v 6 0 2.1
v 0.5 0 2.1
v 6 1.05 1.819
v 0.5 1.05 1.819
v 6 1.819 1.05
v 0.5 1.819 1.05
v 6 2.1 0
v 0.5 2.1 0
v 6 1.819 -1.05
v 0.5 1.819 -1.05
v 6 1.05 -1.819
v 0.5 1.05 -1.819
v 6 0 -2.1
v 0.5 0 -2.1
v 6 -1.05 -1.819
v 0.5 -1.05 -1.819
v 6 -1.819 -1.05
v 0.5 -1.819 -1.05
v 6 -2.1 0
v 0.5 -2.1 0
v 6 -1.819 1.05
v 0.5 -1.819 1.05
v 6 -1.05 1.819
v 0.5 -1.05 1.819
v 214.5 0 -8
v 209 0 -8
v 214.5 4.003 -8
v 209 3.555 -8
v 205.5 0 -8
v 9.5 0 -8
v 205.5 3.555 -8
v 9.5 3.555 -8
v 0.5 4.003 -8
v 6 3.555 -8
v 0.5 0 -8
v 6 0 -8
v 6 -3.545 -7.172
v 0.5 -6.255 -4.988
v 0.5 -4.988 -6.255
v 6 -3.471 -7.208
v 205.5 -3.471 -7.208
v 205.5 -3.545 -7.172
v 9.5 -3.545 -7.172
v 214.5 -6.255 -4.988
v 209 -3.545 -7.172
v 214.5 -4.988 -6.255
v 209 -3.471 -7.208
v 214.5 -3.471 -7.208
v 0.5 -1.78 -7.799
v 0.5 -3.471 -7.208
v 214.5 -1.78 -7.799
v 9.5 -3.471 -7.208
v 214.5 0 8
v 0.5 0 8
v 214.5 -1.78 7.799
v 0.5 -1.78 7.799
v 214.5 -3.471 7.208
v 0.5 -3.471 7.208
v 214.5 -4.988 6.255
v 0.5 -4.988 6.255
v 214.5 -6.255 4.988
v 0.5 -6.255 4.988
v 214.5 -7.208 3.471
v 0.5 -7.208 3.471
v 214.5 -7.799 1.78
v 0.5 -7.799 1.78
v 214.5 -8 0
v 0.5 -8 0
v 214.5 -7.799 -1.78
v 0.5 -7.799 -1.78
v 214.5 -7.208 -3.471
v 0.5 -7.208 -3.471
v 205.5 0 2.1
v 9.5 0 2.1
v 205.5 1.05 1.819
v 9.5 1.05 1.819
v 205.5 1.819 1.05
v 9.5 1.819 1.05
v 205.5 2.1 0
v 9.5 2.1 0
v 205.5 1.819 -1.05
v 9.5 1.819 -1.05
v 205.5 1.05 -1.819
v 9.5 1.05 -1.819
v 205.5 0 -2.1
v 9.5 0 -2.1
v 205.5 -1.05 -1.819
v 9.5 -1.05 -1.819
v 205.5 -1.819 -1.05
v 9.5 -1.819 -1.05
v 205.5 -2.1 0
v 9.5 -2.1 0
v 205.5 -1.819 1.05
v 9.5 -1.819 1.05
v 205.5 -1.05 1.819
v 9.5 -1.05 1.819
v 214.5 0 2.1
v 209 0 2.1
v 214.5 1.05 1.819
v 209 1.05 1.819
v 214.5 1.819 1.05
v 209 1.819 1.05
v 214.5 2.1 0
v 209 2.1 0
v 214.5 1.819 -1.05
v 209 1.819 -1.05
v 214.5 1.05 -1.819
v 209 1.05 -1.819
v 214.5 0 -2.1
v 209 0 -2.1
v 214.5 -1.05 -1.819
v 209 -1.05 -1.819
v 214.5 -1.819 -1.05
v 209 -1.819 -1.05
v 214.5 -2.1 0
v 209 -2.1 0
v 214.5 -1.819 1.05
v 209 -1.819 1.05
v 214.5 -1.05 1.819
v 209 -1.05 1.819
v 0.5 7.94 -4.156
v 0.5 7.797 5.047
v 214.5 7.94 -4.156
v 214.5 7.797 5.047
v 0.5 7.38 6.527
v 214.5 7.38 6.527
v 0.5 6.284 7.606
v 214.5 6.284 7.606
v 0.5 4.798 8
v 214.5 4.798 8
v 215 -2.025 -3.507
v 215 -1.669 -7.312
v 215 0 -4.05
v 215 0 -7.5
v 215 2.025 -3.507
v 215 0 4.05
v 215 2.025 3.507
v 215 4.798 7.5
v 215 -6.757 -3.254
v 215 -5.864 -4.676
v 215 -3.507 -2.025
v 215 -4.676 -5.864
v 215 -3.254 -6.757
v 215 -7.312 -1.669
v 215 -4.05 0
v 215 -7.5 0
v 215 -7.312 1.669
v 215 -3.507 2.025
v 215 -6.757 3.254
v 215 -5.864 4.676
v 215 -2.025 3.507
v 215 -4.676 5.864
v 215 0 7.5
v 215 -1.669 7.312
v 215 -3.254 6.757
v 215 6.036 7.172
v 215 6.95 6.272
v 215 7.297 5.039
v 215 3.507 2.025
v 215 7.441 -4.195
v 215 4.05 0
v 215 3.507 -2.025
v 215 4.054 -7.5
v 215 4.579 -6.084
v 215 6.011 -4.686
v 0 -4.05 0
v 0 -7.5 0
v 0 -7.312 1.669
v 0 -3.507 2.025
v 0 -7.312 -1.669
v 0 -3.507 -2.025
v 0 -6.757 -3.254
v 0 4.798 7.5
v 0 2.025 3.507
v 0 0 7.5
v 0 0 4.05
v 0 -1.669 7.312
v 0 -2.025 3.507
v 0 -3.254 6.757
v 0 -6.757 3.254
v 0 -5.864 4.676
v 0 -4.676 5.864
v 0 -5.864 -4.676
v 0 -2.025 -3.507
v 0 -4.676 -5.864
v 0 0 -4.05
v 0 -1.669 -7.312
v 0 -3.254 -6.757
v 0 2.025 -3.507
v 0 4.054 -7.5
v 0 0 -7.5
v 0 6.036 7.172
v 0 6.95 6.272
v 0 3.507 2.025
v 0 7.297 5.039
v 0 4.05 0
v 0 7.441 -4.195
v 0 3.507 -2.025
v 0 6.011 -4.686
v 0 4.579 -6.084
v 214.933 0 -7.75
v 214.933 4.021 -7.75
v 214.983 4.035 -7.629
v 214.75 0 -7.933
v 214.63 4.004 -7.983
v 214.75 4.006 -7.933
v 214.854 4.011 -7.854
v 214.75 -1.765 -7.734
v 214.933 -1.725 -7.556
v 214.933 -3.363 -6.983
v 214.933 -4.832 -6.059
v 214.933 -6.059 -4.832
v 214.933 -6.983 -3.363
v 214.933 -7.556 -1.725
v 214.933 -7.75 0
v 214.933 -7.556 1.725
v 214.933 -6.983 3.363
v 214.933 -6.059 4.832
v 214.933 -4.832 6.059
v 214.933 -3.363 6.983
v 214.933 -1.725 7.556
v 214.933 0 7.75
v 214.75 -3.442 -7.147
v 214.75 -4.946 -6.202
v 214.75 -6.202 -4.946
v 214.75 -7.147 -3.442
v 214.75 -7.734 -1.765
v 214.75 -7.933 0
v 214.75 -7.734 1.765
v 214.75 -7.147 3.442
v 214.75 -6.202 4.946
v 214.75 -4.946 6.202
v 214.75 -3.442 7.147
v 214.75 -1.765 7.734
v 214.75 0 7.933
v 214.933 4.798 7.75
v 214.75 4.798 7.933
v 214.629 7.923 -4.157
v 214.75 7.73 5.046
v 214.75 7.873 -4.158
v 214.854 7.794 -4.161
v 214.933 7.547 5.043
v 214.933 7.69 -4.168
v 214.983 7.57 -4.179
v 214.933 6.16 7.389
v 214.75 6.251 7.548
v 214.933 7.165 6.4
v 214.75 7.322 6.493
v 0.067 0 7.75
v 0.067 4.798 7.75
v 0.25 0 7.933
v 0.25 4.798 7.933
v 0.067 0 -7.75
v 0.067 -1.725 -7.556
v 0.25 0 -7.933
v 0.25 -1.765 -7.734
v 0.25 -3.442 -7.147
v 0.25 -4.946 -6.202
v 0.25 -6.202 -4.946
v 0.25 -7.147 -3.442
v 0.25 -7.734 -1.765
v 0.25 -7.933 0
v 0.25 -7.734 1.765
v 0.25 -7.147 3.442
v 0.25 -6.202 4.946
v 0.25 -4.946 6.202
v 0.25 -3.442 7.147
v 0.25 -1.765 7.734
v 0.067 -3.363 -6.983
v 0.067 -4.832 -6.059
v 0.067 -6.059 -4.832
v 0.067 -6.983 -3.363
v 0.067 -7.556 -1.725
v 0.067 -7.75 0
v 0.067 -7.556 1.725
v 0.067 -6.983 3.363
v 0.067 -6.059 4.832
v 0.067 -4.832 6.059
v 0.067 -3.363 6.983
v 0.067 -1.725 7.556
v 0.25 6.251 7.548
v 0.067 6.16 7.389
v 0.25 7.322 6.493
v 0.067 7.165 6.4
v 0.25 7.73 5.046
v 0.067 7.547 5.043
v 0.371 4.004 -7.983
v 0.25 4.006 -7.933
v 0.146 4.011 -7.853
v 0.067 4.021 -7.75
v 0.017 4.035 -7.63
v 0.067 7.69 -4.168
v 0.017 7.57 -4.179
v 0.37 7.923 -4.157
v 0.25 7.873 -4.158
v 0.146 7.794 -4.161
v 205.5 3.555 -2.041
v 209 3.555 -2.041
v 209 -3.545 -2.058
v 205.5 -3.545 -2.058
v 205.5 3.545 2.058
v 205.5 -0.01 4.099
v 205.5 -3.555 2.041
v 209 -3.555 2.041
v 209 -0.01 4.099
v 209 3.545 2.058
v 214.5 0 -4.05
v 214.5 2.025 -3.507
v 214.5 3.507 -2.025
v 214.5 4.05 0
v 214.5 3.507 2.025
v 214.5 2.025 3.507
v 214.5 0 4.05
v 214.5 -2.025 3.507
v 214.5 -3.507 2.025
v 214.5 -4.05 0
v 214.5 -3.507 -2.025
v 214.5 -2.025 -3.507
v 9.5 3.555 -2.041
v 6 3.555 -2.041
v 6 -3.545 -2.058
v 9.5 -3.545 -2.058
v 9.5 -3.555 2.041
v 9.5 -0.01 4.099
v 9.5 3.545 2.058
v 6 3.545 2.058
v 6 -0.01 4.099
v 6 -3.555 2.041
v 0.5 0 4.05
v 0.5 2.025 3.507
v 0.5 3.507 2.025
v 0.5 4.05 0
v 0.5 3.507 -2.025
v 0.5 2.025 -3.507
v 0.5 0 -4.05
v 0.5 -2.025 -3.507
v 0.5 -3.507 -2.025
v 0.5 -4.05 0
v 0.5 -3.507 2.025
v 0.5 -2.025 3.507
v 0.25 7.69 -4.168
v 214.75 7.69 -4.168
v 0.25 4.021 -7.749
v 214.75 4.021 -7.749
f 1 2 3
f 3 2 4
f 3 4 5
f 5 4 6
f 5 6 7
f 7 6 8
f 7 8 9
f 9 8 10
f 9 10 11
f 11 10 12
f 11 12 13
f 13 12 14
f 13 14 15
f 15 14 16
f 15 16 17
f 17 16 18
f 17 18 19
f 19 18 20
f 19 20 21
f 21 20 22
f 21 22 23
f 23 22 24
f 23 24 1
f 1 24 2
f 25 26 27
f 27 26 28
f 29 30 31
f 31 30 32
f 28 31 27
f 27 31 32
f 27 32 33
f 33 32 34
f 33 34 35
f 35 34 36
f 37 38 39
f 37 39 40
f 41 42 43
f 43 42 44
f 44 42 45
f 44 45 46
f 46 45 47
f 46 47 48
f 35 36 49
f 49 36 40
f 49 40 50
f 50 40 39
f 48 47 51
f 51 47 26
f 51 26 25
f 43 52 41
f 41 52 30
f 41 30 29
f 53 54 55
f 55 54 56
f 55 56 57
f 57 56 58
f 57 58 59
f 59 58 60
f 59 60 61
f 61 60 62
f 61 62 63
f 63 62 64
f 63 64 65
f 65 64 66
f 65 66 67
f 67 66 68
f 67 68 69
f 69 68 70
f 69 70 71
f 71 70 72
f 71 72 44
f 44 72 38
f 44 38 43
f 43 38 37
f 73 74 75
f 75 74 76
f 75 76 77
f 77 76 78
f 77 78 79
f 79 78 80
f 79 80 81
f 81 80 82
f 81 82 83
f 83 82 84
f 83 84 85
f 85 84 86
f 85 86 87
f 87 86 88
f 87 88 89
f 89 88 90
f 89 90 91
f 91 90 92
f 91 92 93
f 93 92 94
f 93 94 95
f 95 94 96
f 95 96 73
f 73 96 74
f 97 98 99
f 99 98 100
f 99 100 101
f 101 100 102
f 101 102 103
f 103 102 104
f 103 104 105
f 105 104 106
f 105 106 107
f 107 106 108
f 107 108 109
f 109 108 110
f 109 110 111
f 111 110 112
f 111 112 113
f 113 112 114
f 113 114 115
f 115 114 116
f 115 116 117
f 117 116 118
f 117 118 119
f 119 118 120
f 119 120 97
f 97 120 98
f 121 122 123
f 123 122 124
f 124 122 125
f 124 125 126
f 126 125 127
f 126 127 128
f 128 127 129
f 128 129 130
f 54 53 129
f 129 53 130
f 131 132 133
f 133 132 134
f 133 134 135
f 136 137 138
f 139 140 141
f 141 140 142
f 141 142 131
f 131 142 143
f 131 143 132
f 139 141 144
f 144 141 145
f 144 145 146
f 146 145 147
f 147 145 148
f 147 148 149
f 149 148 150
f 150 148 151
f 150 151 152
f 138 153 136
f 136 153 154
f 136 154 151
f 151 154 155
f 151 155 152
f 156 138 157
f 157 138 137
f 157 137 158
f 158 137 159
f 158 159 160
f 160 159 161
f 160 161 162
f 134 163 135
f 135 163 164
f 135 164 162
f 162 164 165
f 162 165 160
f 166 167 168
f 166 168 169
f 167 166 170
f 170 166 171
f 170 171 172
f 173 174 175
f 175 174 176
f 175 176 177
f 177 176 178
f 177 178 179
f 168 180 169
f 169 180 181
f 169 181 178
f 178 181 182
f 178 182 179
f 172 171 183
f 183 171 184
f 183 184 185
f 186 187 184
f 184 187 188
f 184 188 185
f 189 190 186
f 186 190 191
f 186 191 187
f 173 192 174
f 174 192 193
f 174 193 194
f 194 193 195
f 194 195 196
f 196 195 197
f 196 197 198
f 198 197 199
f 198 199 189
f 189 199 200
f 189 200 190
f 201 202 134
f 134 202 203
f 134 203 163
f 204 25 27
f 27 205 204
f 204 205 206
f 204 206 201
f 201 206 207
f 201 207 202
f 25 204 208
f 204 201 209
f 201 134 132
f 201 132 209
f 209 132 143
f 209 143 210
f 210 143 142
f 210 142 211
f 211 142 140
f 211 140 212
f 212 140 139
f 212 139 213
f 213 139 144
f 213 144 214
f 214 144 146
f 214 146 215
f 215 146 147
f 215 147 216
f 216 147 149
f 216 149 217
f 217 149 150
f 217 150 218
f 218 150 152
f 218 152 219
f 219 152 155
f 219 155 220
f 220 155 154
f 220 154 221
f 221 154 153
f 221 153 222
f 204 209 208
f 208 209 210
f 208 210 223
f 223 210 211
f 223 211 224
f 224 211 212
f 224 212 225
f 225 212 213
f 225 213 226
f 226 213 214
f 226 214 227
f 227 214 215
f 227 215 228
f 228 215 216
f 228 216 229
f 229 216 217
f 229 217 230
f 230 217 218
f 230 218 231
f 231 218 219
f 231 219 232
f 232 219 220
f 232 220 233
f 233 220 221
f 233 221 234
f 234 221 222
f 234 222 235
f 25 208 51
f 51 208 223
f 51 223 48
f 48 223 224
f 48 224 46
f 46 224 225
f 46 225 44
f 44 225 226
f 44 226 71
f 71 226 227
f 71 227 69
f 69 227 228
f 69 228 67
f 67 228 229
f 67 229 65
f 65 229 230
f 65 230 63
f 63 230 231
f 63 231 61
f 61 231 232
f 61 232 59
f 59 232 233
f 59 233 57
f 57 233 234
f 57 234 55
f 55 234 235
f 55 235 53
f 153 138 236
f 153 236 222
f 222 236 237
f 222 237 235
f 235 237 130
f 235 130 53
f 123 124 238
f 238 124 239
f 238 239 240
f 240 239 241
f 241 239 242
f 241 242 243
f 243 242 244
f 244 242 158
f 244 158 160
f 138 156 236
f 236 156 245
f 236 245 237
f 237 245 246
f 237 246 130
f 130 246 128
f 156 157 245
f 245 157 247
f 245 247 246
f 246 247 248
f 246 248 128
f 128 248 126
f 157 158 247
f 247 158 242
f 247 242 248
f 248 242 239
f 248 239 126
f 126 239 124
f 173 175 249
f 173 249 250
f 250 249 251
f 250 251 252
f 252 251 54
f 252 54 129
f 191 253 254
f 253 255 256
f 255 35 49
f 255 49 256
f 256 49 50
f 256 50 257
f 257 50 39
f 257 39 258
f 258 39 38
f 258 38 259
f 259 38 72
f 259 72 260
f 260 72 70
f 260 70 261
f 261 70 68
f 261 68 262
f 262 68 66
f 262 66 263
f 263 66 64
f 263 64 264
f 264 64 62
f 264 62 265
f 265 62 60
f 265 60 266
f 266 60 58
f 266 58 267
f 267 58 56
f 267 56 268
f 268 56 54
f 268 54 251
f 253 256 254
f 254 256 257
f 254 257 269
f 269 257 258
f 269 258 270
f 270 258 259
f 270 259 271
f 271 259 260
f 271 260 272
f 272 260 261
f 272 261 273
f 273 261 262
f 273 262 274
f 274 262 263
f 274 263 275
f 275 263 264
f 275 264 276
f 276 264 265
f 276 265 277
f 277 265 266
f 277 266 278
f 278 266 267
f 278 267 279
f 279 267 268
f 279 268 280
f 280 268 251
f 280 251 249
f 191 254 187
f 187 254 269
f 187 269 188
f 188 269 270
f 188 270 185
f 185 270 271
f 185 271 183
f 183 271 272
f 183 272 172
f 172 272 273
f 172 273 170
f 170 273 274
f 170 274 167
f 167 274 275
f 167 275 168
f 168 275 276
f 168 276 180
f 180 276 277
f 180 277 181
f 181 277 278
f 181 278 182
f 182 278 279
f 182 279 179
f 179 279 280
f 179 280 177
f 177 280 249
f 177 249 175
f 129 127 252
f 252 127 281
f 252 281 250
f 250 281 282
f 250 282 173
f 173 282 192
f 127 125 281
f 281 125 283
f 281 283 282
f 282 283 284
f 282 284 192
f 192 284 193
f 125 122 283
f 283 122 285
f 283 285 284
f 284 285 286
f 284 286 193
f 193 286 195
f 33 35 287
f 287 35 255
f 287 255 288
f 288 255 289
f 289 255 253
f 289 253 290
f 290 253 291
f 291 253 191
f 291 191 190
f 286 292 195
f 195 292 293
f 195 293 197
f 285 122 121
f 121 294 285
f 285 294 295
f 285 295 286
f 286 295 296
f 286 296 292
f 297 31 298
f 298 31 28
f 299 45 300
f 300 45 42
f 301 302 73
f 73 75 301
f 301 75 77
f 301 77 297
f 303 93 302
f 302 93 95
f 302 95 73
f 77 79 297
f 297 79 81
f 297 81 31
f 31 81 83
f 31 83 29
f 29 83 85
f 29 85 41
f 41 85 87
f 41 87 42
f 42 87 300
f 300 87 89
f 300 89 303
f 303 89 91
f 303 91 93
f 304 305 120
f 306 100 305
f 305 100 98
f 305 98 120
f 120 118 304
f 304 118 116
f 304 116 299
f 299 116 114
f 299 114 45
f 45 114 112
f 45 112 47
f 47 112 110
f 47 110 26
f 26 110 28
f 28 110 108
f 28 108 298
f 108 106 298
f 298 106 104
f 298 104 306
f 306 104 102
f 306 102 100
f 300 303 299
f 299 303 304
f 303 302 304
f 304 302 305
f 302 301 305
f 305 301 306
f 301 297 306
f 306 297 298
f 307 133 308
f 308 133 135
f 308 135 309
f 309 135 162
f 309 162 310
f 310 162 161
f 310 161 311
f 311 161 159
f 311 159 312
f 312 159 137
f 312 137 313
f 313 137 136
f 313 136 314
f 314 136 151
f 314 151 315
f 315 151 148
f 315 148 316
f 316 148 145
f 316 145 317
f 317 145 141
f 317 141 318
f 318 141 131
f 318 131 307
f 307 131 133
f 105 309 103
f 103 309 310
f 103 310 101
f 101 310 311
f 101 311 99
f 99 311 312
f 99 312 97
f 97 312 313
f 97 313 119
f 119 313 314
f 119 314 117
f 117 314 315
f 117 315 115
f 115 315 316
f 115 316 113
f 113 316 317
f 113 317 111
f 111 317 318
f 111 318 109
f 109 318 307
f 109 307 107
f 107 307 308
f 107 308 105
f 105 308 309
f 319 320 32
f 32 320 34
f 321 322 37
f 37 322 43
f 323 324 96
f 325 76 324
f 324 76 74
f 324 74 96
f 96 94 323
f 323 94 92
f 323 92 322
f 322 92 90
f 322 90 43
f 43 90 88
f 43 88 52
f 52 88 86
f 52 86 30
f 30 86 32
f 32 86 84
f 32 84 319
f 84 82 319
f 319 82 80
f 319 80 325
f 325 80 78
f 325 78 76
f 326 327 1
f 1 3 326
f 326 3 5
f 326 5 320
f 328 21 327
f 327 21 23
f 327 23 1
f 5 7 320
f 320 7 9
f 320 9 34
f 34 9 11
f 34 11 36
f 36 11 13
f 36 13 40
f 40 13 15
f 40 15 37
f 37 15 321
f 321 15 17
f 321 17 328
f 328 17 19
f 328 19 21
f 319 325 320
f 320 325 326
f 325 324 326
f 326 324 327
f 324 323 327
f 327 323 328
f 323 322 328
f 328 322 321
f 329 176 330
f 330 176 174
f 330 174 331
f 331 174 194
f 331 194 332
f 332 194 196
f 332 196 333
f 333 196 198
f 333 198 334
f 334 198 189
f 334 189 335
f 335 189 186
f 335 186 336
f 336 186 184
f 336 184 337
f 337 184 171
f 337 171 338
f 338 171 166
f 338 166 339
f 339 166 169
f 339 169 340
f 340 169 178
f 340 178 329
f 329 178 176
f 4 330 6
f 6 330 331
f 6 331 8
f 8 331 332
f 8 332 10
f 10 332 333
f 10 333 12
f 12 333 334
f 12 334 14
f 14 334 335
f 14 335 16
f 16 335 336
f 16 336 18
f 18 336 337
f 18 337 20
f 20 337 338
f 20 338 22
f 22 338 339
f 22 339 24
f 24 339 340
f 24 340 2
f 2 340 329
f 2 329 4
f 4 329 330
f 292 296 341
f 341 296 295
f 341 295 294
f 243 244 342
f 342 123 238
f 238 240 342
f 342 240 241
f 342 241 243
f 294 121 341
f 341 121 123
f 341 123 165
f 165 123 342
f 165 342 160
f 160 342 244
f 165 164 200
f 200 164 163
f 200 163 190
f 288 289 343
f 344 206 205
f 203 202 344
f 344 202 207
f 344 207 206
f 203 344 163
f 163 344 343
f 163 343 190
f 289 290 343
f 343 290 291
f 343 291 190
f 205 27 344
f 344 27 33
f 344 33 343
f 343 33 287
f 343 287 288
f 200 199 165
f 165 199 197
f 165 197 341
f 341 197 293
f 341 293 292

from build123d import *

# Parameters (mm, degrees)
SKETCH1_R           = 2.1
BOSS_EXTRUDE1_DEPTH = 215
FILLET1_R           = 0.5
CUT_EXTRUDE6_DEPTH  = 3.5
SKETCH11_R          = 4.05
CUT_EXTRUDE7_DEPTH  = 0.5
CUT_EXTRUDE8_DEPTH  = 216.297468637


with BuildPart() as part:
    # Sketch1 → Boss-Extrude1 (new body)
    with BuildSketch(Plane(origin=(0, 0, 0), x_dir=(0, 0, -1), z_dir=(1, 0, 0))):
        with BuildLine():
            ThreePointArc((-8, 0), (0, -8), (8, 0))
            Line((8, 0), (8, 4.953035538))
            ThreePointArc((8, 4.953035538), (7.10478138, 7.090766893), (4.953403104, 7.952673638))
            Line((4.953403104, 7.952673638), (-5.046596896, 7.797331911))
            ThreePointArc((-5.046596896, 7.797331911), (-7.137731355, 6.902475191), (-8, 4.797693812))
            Line((-8, 4.797693812), (-8, 0))
        make_face()
        Circle(SKETCH1_R, mode=Mode.SUBTRACT)
    extrude(amount=BOSS_EXTRUDE1_DEPTH)

    # Fillet1
    fillet1_edges = [part.edges().sort_by_distance(p)[0] for p in [
        (215, 6.902475191, 7.137731355),
        (215, 7.875002775, 0.046596896),
        (215, 7.090766893, -7.10478138),
        (215, 2.476517769, -8),
        (215, -8, 0),
        (0, 7.090766893, -7.10478138),
        (0, 2.476517769, -8),
        (0, -8, 0),
        (0, 2.398846906, 8),
        (0, 6.902475191, 7.137731355),
        (215, 2.398846906, 8),
        (0, 7.875002775, 0.046596896),
    ]]
    fillet(fillet1_edges, radius=FILLET1_R)

    # Sketch8 → Cut-Extrude6 (cut)
    with BuildSketch(Plane(origin=(209, 0, 0), x_dir=(0, 0, -1), z_dir=(1, 0, 0))):
        Polygon((2.040874515, 3.555019627), (10.204569272, 3.555019627), (10.291698633, -3.544958989), (2.058300051, -3.544958989), (-2.040874515, -3.555019627), (-4.099174565, -0.010060638), (-2.058300051, 3.544958989), align=None)
    cut_extrude6 = extrude(amount=-CUT_EXTRUDE6_DEPTH, mode=Mode.SUBTRACT)

    # Sketch11 → Cut-Extrude7 (cut)
    with BuildSketch(Plane(origin=(215, 0, 0), x_dir=(0, 0, -1), z_dir=(1, 0, 0))):
        Circle(SKETCH11_R)
    cut_extrude7 = extrude(amount=-CUT_EXTRUDE7_DEPTH, mode=Mode.SUBTRACT)

    # Mirror1: Cut-Extrude6, Cut-Extrude7 across plane
    add(cut_extrude6.mirror(Plane.ZY.offset(-107.5)), mode=Mode.SUBTRACT)
    add(cut_extrude7.mirror(Plane.ZY.offset(-107.5)), mode=Mode.SUBTRACT)

    # Sketch13 → Cut-Extrude8 (cut, through all)
    with BuildSketch(Plane.ZY):
        with BuildLine():
            Line((-8.155806574, 4), (-8.155806574, 8.298439356))
            Line((-8.155806574, 8.298439356), (-4.156962159, 8.096142326))
            ThreePointArc((-4.156962159, 8.096142326), (-5.293589836, 5.205771064), (-8.155806574, 4))
        make_face()
    extrude(amount=-CUT_EXTRUDE8_DEPTH, mode=Mode.SUBTRACT)


solid = part.part
